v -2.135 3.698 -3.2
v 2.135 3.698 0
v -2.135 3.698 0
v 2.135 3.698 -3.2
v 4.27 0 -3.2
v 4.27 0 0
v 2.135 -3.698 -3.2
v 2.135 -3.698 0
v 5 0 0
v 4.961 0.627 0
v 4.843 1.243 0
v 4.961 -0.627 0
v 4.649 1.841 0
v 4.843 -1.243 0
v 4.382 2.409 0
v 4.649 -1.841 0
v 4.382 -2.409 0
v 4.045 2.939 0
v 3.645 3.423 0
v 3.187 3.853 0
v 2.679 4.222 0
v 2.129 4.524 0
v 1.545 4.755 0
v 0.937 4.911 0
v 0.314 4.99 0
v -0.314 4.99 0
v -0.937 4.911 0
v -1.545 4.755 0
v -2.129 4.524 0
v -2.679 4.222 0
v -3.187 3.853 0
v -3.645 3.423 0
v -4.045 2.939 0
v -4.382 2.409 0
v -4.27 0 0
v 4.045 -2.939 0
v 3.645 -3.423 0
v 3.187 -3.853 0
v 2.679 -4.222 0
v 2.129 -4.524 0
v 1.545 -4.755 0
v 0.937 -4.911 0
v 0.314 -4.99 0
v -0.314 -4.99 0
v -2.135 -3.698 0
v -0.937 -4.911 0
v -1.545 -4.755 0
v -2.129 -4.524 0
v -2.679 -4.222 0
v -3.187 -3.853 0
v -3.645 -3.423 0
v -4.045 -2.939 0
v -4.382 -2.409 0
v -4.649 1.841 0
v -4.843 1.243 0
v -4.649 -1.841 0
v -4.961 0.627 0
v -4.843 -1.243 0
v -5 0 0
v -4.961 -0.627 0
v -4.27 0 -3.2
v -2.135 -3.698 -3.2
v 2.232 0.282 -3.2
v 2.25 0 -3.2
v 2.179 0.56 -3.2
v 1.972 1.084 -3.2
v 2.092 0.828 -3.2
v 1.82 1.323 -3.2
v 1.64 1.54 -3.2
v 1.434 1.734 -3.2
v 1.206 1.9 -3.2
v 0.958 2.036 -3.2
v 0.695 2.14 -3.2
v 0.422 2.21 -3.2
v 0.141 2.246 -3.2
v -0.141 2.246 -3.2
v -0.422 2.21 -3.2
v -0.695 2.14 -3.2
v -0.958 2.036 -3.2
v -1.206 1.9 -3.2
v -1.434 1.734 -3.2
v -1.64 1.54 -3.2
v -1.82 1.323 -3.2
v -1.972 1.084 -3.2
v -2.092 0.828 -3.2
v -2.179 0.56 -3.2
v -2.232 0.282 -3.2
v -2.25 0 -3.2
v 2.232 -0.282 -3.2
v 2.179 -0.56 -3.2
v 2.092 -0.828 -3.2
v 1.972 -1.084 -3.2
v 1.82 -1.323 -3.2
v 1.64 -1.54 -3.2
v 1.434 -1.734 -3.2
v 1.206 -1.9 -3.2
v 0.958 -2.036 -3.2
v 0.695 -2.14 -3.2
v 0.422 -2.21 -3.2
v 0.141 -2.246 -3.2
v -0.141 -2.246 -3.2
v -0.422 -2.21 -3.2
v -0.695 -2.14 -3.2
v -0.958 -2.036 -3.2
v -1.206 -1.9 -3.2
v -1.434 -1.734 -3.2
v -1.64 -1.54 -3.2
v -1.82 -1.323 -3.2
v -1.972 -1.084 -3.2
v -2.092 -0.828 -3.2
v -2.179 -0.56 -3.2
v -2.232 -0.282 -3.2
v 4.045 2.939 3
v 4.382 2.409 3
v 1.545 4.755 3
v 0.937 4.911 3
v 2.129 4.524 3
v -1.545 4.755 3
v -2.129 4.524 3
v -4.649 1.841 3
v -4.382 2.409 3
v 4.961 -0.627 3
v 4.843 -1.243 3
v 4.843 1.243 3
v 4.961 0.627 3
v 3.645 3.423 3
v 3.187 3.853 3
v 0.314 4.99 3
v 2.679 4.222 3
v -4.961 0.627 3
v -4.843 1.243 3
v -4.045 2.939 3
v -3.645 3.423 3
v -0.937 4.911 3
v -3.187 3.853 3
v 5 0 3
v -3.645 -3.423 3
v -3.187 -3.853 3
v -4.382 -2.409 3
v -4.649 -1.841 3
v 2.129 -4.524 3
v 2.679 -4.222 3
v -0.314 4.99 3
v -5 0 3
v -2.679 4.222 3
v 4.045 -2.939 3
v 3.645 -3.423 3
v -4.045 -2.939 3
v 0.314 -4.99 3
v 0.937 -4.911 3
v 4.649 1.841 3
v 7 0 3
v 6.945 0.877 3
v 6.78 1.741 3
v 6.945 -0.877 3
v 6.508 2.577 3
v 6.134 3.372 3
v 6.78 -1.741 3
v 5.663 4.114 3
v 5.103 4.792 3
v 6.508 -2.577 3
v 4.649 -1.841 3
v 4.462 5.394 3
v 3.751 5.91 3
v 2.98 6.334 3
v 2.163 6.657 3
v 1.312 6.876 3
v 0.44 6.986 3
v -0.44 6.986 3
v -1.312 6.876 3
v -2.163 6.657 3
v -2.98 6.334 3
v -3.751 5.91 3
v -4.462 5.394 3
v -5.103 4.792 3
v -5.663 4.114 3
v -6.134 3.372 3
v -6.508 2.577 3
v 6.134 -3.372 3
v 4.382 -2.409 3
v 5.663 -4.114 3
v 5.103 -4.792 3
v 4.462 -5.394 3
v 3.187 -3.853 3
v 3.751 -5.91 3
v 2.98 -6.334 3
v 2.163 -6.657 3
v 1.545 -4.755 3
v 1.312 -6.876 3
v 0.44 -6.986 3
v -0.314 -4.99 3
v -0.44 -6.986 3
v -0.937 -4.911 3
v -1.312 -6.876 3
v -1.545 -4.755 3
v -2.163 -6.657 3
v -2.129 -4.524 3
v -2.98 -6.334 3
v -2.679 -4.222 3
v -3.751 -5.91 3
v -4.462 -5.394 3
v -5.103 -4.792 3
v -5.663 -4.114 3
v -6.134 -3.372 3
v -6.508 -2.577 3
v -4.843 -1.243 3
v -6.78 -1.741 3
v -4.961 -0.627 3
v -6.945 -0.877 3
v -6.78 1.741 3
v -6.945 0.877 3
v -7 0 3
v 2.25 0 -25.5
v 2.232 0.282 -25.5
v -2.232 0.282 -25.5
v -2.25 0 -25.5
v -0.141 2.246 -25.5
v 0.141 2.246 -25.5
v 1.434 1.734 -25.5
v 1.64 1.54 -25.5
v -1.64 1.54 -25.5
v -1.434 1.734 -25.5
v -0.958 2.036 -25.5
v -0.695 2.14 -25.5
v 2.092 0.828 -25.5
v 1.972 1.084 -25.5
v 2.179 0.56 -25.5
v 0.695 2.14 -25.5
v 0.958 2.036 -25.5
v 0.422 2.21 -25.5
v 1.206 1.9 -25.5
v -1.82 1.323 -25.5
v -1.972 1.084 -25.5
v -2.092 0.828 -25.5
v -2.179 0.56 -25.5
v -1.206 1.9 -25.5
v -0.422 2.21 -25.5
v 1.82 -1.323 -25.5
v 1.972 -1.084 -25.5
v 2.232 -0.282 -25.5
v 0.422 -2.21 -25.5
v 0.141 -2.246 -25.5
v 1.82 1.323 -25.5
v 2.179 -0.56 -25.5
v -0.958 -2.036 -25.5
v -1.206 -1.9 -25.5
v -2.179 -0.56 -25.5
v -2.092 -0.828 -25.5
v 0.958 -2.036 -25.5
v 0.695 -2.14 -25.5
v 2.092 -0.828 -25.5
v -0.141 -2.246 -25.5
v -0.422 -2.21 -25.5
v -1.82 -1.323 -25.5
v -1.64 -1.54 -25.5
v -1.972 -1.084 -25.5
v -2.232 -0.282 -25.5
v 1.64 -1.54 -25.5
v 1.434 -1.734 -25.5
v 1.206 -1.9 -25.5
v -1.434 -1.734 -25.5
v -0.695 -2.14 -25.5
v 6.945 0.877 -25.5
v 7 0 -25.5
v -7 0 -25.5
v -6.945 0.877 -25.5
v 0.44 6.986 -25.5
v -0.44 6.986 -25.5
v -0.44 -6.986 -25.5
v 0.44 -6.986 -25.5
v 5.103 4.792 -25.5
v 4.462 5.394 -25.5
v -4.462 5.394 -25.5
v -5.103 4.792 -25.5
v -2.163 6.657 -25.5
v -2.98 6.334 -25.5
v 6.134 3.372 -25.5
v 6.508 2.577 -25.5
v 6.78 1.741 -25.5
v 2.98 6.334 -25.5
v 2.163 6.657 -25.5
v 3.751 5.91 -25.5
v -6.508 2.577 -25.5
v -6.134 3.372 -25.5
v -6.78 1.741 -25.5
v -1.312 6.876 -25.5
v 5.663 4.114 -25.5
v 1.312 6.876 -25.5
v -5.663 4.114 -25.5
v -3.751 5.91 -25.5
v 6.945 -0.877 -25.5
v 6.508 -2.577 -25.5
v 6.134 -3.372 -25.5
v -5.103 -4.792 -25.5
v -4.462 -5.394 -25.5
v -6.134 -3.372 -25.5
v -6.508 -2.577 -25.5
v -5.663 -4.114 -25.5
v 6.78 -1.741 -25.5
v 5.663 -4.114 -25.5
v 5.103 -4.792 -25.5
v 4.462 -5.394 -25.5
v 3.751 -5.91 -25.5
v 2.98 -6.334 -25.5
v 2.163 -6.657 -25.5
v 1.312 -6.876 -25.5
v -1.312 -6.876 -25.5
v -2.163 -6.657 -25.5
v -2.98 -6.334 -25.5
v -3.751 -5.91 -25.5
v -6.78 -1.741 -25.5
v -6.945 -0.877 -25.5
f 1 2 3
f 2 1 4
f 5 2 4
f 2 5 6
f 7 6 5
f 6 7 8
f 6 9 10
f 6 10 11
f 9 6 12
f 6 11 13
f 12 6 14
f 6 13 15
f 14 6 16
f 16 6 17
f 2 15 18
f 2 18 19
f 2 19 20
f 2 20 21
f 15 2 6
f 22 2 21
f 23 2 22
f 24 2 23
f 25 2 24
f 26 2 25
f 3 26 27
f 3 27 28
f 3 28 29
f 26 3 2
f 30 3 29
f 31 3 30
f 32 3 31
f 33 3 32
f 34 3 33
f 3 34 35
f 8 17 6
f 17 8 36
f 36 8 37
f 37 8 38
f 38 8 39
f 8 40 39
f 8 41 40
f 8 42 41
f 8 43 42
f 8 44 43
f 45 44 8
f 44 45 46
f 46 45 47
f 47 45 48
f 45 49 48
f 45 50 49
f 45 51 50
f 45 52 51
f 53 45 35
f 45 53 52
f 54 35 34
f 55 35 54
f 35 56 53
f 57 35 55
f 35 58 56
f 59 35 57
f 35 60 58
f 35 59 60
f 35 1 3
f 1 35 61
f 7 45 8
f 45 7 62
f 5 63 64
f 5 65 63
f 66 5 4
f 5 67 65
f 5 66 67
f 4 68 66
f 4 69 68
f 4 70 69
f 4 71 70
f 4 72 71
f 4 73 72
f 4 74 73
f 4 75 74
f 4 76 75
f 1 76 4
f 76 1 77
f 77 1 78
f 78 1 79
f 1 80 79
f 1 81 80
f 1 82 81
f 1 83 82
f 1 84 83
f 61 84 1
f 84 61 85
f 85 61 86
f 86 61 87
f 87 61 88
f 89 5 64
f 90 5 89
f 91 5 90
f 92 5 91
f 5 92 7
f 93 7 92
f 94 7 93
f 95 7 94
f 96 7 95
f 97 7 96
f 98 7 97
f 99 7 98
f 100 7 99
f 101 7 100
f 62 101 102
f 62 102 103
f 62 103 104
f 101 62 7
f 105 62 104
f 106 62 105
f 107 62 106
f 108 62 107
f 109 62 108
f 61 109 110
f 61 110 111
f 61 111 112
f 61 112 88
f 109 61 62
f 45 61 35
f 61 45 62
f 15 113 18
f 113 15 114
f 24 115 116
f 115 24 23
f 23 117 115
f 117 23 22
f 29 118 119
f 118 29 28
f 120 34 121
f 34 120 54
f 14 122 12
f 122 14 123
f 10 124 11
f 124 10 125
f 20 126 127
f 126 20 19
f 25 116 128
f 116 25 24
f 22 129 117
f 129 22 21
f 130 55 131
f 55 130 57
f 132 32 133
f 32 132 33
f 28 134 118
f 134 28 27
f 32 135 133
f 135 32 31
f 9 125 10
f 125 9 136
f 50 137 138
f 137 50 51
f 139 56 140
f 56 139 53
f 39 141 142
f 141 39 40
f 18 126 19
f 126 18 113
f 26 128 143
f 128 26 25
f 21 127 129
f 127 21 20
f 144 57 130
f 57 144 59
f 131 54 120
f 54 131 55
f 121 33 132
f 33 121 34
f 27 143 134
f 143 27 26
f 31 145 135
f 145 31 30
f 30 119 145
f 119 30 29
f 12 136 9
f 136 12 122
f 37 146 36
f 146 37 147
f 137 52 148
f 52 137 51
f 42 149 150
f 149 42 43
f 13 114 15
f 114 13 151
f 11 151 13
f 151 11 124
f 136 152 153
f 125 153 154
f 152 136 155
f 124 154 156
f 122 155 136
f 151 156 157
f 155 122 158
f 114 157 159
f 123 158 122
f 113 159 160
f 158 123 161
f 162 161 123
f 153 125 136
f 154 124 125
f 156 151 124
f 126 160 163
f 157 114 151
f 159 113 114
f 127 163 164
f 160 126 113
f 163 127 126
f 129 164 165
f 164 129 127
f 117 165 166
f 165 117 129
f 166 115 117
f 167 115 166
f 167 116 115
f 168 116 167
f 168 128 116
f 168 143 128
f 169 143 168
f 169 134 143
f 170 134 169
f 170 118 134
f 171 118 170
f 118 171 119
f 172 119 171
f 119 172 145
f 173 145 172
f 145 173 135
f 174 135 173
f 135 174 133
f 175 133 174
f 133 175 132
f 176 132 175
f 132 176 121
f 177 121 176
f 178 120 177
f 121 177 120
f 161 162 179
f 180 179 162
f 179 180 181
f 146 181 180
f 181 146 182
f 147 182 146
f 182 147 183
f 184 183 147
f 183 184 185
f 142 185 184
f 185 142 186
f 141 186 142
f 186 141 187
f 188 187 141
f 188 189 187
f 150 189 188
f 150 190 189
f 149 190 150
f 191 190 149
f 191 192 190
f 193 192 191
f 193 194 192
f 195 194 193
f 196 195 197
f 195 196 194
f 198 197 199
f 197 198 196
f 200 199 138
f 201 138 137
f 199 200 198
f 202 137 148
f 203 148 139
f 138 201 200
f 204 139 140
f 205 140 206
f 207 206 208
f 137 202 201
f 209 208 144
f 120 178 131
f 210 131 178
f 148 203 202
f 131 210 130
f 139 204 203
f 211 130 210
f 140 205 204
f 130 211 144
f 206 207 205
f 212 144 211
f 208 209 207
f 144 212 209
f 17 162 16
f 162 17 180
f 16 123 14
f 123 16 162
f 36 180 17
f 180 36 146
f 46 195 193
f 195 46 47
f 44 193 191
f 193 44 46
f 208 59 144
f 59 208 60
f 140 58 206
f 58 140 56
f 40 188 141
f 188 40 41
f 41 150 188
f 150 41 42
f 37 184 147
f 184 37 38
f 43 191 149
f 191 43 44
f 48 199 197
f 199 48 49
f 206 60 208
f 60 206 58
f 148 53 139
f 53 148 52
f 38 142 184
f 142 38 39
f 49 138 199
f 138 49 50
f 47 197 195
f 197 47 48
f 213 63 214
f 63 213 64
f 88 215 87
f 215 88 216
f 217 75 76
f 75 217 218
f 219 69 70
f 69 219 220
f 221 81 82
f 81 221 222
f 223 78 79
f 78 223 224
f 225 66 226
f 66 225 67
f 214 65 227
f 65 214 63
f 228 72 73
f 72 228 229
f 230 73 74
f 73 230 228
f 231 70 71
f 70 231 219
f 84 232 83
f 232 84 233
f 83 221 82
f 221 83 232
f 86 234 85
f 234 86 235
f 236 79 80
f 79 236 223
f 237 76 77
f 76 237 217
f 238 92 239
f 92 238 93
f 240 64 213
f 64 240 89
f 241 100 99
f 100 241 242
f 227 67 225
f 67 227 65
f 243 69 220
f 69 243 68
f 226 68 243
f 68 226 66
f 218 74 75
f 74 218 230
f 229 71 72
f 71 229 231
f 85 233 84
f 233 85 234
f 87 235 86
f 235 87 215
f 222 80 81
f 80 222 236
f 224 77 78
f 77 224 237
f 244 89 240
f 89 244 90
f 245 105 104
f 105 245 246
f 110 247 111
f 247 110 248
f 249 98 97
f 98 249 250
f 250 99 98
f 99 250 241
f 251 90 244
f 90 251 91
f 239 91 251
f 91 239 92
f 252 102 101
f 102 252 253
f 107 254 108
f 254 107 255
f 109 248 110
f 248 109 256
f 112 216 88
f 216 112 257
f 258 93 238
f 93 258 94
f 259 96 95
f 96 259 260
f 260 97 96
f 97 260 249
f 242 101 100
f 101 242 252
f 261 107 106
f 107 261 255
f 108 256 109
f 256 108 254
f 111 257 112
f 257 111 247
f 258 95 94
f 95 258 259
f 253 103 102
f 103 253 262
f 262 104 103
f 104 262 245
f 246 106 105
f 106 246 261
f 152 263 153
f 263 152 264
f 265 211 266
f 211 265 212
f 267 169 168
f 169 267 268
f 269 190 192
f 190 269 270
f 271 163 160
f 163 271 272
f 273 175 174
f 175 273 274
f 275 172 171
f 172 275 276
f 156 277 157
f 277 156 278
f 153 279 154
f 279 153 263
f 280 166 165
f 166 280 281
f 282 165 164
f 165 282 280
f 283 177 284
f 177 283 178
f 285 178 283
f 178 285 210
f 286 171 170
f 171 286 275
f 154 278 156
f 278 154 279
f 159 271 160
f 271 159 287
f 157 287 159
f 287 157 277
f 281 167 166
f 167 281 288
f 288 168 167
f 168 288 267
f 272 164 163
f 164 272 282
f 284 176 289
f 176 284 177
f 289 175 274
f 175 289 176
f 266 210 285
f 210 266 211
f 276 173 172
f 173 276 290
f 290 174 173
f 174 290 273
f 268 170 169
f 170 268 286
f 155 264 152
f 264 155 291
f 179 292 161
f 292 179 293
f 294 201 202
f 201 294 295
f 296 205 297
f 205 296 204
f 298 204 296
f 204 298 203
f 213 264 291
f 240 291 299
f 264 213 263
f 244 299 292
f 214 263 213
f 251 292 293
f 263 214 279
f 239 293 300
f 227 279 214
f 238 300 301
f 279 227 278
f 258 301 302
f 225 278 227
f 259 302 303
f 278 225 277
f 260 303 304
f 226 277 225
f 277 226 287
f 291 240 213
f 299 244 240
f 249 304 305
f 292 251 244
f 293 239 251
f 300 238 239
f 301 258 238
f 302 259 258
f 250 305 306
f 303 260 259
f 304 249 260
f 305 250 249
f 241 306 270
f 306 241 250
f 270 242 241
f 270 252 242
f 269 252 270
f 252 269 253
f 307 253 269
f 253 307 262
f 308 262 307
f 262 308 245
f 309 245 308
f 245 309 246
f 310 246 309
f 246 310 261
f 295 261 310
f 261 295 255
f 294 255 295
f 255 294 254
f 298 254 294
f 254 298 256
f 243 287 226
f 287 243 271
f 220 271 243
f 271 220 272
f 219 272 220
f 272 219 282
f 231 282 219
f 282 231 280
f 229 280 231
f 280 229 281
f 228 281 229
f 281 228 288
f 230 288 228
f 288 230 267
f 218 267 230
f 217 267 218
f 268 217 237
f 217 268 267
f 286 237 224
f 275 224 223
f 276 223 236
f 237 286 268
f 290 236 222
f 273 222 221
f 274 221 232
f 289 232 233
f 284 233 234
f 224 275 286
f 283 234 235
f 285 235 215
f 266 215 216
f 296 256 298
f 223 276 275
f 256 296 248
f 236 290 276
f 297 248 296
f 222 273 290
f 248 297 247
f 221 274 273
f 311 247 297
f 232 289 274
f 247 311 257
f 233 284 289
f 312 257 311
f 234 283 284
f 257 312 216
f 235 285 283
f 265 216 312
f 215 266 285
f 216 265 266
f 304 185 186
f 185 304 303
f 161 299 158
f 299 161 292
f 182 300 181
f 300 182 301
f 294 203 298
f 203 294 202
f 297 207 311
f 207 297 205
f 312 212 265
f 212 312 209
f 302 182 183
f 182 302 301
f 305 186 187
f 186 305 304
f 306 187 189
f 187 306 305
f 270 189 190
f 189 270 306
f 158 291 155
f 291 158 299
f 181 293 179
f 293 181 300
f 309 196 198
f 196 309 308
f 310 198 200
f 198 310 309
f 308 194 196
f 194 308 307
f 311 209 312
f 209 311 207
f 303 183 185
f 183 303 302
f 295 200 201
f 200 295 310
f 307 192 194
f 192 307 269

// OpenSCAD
$fn = 50;


difference() {
	union() {
		translate(v = [0, 0, -25.5000000000]) {
			cylinder(h = 28.5000000000, r = 7.0000000000);
		}
	}
	union() {
		translate(v = [0, 0, 0]) {
			rotate(a = [0, 0, 0]) {
				difference() {
					union() {
						translate(v = [0, 0, -3.2000000000]) {
							linear_extrude(height = 3.2000000000) {
								polygon(points = [[4.2698000000, 0.0000000000], [2.1349000000, 3.6977552691], [-2.1349000000, 3.6977552691], [-4.2698000000, 0.0000000000], [-2.1349000000, -3.6977552691], [2.1349000000, -3.6977552691]]);
							}
						}
					}
					union();
				}
			}
		}
		#cylinder(h = 3, r = 5.0000000000);
		#translate(v = [0, 0, -100.0000000000]) {
			cylinder(h = 200, r = 2.2500000000);
		}
	}
}
